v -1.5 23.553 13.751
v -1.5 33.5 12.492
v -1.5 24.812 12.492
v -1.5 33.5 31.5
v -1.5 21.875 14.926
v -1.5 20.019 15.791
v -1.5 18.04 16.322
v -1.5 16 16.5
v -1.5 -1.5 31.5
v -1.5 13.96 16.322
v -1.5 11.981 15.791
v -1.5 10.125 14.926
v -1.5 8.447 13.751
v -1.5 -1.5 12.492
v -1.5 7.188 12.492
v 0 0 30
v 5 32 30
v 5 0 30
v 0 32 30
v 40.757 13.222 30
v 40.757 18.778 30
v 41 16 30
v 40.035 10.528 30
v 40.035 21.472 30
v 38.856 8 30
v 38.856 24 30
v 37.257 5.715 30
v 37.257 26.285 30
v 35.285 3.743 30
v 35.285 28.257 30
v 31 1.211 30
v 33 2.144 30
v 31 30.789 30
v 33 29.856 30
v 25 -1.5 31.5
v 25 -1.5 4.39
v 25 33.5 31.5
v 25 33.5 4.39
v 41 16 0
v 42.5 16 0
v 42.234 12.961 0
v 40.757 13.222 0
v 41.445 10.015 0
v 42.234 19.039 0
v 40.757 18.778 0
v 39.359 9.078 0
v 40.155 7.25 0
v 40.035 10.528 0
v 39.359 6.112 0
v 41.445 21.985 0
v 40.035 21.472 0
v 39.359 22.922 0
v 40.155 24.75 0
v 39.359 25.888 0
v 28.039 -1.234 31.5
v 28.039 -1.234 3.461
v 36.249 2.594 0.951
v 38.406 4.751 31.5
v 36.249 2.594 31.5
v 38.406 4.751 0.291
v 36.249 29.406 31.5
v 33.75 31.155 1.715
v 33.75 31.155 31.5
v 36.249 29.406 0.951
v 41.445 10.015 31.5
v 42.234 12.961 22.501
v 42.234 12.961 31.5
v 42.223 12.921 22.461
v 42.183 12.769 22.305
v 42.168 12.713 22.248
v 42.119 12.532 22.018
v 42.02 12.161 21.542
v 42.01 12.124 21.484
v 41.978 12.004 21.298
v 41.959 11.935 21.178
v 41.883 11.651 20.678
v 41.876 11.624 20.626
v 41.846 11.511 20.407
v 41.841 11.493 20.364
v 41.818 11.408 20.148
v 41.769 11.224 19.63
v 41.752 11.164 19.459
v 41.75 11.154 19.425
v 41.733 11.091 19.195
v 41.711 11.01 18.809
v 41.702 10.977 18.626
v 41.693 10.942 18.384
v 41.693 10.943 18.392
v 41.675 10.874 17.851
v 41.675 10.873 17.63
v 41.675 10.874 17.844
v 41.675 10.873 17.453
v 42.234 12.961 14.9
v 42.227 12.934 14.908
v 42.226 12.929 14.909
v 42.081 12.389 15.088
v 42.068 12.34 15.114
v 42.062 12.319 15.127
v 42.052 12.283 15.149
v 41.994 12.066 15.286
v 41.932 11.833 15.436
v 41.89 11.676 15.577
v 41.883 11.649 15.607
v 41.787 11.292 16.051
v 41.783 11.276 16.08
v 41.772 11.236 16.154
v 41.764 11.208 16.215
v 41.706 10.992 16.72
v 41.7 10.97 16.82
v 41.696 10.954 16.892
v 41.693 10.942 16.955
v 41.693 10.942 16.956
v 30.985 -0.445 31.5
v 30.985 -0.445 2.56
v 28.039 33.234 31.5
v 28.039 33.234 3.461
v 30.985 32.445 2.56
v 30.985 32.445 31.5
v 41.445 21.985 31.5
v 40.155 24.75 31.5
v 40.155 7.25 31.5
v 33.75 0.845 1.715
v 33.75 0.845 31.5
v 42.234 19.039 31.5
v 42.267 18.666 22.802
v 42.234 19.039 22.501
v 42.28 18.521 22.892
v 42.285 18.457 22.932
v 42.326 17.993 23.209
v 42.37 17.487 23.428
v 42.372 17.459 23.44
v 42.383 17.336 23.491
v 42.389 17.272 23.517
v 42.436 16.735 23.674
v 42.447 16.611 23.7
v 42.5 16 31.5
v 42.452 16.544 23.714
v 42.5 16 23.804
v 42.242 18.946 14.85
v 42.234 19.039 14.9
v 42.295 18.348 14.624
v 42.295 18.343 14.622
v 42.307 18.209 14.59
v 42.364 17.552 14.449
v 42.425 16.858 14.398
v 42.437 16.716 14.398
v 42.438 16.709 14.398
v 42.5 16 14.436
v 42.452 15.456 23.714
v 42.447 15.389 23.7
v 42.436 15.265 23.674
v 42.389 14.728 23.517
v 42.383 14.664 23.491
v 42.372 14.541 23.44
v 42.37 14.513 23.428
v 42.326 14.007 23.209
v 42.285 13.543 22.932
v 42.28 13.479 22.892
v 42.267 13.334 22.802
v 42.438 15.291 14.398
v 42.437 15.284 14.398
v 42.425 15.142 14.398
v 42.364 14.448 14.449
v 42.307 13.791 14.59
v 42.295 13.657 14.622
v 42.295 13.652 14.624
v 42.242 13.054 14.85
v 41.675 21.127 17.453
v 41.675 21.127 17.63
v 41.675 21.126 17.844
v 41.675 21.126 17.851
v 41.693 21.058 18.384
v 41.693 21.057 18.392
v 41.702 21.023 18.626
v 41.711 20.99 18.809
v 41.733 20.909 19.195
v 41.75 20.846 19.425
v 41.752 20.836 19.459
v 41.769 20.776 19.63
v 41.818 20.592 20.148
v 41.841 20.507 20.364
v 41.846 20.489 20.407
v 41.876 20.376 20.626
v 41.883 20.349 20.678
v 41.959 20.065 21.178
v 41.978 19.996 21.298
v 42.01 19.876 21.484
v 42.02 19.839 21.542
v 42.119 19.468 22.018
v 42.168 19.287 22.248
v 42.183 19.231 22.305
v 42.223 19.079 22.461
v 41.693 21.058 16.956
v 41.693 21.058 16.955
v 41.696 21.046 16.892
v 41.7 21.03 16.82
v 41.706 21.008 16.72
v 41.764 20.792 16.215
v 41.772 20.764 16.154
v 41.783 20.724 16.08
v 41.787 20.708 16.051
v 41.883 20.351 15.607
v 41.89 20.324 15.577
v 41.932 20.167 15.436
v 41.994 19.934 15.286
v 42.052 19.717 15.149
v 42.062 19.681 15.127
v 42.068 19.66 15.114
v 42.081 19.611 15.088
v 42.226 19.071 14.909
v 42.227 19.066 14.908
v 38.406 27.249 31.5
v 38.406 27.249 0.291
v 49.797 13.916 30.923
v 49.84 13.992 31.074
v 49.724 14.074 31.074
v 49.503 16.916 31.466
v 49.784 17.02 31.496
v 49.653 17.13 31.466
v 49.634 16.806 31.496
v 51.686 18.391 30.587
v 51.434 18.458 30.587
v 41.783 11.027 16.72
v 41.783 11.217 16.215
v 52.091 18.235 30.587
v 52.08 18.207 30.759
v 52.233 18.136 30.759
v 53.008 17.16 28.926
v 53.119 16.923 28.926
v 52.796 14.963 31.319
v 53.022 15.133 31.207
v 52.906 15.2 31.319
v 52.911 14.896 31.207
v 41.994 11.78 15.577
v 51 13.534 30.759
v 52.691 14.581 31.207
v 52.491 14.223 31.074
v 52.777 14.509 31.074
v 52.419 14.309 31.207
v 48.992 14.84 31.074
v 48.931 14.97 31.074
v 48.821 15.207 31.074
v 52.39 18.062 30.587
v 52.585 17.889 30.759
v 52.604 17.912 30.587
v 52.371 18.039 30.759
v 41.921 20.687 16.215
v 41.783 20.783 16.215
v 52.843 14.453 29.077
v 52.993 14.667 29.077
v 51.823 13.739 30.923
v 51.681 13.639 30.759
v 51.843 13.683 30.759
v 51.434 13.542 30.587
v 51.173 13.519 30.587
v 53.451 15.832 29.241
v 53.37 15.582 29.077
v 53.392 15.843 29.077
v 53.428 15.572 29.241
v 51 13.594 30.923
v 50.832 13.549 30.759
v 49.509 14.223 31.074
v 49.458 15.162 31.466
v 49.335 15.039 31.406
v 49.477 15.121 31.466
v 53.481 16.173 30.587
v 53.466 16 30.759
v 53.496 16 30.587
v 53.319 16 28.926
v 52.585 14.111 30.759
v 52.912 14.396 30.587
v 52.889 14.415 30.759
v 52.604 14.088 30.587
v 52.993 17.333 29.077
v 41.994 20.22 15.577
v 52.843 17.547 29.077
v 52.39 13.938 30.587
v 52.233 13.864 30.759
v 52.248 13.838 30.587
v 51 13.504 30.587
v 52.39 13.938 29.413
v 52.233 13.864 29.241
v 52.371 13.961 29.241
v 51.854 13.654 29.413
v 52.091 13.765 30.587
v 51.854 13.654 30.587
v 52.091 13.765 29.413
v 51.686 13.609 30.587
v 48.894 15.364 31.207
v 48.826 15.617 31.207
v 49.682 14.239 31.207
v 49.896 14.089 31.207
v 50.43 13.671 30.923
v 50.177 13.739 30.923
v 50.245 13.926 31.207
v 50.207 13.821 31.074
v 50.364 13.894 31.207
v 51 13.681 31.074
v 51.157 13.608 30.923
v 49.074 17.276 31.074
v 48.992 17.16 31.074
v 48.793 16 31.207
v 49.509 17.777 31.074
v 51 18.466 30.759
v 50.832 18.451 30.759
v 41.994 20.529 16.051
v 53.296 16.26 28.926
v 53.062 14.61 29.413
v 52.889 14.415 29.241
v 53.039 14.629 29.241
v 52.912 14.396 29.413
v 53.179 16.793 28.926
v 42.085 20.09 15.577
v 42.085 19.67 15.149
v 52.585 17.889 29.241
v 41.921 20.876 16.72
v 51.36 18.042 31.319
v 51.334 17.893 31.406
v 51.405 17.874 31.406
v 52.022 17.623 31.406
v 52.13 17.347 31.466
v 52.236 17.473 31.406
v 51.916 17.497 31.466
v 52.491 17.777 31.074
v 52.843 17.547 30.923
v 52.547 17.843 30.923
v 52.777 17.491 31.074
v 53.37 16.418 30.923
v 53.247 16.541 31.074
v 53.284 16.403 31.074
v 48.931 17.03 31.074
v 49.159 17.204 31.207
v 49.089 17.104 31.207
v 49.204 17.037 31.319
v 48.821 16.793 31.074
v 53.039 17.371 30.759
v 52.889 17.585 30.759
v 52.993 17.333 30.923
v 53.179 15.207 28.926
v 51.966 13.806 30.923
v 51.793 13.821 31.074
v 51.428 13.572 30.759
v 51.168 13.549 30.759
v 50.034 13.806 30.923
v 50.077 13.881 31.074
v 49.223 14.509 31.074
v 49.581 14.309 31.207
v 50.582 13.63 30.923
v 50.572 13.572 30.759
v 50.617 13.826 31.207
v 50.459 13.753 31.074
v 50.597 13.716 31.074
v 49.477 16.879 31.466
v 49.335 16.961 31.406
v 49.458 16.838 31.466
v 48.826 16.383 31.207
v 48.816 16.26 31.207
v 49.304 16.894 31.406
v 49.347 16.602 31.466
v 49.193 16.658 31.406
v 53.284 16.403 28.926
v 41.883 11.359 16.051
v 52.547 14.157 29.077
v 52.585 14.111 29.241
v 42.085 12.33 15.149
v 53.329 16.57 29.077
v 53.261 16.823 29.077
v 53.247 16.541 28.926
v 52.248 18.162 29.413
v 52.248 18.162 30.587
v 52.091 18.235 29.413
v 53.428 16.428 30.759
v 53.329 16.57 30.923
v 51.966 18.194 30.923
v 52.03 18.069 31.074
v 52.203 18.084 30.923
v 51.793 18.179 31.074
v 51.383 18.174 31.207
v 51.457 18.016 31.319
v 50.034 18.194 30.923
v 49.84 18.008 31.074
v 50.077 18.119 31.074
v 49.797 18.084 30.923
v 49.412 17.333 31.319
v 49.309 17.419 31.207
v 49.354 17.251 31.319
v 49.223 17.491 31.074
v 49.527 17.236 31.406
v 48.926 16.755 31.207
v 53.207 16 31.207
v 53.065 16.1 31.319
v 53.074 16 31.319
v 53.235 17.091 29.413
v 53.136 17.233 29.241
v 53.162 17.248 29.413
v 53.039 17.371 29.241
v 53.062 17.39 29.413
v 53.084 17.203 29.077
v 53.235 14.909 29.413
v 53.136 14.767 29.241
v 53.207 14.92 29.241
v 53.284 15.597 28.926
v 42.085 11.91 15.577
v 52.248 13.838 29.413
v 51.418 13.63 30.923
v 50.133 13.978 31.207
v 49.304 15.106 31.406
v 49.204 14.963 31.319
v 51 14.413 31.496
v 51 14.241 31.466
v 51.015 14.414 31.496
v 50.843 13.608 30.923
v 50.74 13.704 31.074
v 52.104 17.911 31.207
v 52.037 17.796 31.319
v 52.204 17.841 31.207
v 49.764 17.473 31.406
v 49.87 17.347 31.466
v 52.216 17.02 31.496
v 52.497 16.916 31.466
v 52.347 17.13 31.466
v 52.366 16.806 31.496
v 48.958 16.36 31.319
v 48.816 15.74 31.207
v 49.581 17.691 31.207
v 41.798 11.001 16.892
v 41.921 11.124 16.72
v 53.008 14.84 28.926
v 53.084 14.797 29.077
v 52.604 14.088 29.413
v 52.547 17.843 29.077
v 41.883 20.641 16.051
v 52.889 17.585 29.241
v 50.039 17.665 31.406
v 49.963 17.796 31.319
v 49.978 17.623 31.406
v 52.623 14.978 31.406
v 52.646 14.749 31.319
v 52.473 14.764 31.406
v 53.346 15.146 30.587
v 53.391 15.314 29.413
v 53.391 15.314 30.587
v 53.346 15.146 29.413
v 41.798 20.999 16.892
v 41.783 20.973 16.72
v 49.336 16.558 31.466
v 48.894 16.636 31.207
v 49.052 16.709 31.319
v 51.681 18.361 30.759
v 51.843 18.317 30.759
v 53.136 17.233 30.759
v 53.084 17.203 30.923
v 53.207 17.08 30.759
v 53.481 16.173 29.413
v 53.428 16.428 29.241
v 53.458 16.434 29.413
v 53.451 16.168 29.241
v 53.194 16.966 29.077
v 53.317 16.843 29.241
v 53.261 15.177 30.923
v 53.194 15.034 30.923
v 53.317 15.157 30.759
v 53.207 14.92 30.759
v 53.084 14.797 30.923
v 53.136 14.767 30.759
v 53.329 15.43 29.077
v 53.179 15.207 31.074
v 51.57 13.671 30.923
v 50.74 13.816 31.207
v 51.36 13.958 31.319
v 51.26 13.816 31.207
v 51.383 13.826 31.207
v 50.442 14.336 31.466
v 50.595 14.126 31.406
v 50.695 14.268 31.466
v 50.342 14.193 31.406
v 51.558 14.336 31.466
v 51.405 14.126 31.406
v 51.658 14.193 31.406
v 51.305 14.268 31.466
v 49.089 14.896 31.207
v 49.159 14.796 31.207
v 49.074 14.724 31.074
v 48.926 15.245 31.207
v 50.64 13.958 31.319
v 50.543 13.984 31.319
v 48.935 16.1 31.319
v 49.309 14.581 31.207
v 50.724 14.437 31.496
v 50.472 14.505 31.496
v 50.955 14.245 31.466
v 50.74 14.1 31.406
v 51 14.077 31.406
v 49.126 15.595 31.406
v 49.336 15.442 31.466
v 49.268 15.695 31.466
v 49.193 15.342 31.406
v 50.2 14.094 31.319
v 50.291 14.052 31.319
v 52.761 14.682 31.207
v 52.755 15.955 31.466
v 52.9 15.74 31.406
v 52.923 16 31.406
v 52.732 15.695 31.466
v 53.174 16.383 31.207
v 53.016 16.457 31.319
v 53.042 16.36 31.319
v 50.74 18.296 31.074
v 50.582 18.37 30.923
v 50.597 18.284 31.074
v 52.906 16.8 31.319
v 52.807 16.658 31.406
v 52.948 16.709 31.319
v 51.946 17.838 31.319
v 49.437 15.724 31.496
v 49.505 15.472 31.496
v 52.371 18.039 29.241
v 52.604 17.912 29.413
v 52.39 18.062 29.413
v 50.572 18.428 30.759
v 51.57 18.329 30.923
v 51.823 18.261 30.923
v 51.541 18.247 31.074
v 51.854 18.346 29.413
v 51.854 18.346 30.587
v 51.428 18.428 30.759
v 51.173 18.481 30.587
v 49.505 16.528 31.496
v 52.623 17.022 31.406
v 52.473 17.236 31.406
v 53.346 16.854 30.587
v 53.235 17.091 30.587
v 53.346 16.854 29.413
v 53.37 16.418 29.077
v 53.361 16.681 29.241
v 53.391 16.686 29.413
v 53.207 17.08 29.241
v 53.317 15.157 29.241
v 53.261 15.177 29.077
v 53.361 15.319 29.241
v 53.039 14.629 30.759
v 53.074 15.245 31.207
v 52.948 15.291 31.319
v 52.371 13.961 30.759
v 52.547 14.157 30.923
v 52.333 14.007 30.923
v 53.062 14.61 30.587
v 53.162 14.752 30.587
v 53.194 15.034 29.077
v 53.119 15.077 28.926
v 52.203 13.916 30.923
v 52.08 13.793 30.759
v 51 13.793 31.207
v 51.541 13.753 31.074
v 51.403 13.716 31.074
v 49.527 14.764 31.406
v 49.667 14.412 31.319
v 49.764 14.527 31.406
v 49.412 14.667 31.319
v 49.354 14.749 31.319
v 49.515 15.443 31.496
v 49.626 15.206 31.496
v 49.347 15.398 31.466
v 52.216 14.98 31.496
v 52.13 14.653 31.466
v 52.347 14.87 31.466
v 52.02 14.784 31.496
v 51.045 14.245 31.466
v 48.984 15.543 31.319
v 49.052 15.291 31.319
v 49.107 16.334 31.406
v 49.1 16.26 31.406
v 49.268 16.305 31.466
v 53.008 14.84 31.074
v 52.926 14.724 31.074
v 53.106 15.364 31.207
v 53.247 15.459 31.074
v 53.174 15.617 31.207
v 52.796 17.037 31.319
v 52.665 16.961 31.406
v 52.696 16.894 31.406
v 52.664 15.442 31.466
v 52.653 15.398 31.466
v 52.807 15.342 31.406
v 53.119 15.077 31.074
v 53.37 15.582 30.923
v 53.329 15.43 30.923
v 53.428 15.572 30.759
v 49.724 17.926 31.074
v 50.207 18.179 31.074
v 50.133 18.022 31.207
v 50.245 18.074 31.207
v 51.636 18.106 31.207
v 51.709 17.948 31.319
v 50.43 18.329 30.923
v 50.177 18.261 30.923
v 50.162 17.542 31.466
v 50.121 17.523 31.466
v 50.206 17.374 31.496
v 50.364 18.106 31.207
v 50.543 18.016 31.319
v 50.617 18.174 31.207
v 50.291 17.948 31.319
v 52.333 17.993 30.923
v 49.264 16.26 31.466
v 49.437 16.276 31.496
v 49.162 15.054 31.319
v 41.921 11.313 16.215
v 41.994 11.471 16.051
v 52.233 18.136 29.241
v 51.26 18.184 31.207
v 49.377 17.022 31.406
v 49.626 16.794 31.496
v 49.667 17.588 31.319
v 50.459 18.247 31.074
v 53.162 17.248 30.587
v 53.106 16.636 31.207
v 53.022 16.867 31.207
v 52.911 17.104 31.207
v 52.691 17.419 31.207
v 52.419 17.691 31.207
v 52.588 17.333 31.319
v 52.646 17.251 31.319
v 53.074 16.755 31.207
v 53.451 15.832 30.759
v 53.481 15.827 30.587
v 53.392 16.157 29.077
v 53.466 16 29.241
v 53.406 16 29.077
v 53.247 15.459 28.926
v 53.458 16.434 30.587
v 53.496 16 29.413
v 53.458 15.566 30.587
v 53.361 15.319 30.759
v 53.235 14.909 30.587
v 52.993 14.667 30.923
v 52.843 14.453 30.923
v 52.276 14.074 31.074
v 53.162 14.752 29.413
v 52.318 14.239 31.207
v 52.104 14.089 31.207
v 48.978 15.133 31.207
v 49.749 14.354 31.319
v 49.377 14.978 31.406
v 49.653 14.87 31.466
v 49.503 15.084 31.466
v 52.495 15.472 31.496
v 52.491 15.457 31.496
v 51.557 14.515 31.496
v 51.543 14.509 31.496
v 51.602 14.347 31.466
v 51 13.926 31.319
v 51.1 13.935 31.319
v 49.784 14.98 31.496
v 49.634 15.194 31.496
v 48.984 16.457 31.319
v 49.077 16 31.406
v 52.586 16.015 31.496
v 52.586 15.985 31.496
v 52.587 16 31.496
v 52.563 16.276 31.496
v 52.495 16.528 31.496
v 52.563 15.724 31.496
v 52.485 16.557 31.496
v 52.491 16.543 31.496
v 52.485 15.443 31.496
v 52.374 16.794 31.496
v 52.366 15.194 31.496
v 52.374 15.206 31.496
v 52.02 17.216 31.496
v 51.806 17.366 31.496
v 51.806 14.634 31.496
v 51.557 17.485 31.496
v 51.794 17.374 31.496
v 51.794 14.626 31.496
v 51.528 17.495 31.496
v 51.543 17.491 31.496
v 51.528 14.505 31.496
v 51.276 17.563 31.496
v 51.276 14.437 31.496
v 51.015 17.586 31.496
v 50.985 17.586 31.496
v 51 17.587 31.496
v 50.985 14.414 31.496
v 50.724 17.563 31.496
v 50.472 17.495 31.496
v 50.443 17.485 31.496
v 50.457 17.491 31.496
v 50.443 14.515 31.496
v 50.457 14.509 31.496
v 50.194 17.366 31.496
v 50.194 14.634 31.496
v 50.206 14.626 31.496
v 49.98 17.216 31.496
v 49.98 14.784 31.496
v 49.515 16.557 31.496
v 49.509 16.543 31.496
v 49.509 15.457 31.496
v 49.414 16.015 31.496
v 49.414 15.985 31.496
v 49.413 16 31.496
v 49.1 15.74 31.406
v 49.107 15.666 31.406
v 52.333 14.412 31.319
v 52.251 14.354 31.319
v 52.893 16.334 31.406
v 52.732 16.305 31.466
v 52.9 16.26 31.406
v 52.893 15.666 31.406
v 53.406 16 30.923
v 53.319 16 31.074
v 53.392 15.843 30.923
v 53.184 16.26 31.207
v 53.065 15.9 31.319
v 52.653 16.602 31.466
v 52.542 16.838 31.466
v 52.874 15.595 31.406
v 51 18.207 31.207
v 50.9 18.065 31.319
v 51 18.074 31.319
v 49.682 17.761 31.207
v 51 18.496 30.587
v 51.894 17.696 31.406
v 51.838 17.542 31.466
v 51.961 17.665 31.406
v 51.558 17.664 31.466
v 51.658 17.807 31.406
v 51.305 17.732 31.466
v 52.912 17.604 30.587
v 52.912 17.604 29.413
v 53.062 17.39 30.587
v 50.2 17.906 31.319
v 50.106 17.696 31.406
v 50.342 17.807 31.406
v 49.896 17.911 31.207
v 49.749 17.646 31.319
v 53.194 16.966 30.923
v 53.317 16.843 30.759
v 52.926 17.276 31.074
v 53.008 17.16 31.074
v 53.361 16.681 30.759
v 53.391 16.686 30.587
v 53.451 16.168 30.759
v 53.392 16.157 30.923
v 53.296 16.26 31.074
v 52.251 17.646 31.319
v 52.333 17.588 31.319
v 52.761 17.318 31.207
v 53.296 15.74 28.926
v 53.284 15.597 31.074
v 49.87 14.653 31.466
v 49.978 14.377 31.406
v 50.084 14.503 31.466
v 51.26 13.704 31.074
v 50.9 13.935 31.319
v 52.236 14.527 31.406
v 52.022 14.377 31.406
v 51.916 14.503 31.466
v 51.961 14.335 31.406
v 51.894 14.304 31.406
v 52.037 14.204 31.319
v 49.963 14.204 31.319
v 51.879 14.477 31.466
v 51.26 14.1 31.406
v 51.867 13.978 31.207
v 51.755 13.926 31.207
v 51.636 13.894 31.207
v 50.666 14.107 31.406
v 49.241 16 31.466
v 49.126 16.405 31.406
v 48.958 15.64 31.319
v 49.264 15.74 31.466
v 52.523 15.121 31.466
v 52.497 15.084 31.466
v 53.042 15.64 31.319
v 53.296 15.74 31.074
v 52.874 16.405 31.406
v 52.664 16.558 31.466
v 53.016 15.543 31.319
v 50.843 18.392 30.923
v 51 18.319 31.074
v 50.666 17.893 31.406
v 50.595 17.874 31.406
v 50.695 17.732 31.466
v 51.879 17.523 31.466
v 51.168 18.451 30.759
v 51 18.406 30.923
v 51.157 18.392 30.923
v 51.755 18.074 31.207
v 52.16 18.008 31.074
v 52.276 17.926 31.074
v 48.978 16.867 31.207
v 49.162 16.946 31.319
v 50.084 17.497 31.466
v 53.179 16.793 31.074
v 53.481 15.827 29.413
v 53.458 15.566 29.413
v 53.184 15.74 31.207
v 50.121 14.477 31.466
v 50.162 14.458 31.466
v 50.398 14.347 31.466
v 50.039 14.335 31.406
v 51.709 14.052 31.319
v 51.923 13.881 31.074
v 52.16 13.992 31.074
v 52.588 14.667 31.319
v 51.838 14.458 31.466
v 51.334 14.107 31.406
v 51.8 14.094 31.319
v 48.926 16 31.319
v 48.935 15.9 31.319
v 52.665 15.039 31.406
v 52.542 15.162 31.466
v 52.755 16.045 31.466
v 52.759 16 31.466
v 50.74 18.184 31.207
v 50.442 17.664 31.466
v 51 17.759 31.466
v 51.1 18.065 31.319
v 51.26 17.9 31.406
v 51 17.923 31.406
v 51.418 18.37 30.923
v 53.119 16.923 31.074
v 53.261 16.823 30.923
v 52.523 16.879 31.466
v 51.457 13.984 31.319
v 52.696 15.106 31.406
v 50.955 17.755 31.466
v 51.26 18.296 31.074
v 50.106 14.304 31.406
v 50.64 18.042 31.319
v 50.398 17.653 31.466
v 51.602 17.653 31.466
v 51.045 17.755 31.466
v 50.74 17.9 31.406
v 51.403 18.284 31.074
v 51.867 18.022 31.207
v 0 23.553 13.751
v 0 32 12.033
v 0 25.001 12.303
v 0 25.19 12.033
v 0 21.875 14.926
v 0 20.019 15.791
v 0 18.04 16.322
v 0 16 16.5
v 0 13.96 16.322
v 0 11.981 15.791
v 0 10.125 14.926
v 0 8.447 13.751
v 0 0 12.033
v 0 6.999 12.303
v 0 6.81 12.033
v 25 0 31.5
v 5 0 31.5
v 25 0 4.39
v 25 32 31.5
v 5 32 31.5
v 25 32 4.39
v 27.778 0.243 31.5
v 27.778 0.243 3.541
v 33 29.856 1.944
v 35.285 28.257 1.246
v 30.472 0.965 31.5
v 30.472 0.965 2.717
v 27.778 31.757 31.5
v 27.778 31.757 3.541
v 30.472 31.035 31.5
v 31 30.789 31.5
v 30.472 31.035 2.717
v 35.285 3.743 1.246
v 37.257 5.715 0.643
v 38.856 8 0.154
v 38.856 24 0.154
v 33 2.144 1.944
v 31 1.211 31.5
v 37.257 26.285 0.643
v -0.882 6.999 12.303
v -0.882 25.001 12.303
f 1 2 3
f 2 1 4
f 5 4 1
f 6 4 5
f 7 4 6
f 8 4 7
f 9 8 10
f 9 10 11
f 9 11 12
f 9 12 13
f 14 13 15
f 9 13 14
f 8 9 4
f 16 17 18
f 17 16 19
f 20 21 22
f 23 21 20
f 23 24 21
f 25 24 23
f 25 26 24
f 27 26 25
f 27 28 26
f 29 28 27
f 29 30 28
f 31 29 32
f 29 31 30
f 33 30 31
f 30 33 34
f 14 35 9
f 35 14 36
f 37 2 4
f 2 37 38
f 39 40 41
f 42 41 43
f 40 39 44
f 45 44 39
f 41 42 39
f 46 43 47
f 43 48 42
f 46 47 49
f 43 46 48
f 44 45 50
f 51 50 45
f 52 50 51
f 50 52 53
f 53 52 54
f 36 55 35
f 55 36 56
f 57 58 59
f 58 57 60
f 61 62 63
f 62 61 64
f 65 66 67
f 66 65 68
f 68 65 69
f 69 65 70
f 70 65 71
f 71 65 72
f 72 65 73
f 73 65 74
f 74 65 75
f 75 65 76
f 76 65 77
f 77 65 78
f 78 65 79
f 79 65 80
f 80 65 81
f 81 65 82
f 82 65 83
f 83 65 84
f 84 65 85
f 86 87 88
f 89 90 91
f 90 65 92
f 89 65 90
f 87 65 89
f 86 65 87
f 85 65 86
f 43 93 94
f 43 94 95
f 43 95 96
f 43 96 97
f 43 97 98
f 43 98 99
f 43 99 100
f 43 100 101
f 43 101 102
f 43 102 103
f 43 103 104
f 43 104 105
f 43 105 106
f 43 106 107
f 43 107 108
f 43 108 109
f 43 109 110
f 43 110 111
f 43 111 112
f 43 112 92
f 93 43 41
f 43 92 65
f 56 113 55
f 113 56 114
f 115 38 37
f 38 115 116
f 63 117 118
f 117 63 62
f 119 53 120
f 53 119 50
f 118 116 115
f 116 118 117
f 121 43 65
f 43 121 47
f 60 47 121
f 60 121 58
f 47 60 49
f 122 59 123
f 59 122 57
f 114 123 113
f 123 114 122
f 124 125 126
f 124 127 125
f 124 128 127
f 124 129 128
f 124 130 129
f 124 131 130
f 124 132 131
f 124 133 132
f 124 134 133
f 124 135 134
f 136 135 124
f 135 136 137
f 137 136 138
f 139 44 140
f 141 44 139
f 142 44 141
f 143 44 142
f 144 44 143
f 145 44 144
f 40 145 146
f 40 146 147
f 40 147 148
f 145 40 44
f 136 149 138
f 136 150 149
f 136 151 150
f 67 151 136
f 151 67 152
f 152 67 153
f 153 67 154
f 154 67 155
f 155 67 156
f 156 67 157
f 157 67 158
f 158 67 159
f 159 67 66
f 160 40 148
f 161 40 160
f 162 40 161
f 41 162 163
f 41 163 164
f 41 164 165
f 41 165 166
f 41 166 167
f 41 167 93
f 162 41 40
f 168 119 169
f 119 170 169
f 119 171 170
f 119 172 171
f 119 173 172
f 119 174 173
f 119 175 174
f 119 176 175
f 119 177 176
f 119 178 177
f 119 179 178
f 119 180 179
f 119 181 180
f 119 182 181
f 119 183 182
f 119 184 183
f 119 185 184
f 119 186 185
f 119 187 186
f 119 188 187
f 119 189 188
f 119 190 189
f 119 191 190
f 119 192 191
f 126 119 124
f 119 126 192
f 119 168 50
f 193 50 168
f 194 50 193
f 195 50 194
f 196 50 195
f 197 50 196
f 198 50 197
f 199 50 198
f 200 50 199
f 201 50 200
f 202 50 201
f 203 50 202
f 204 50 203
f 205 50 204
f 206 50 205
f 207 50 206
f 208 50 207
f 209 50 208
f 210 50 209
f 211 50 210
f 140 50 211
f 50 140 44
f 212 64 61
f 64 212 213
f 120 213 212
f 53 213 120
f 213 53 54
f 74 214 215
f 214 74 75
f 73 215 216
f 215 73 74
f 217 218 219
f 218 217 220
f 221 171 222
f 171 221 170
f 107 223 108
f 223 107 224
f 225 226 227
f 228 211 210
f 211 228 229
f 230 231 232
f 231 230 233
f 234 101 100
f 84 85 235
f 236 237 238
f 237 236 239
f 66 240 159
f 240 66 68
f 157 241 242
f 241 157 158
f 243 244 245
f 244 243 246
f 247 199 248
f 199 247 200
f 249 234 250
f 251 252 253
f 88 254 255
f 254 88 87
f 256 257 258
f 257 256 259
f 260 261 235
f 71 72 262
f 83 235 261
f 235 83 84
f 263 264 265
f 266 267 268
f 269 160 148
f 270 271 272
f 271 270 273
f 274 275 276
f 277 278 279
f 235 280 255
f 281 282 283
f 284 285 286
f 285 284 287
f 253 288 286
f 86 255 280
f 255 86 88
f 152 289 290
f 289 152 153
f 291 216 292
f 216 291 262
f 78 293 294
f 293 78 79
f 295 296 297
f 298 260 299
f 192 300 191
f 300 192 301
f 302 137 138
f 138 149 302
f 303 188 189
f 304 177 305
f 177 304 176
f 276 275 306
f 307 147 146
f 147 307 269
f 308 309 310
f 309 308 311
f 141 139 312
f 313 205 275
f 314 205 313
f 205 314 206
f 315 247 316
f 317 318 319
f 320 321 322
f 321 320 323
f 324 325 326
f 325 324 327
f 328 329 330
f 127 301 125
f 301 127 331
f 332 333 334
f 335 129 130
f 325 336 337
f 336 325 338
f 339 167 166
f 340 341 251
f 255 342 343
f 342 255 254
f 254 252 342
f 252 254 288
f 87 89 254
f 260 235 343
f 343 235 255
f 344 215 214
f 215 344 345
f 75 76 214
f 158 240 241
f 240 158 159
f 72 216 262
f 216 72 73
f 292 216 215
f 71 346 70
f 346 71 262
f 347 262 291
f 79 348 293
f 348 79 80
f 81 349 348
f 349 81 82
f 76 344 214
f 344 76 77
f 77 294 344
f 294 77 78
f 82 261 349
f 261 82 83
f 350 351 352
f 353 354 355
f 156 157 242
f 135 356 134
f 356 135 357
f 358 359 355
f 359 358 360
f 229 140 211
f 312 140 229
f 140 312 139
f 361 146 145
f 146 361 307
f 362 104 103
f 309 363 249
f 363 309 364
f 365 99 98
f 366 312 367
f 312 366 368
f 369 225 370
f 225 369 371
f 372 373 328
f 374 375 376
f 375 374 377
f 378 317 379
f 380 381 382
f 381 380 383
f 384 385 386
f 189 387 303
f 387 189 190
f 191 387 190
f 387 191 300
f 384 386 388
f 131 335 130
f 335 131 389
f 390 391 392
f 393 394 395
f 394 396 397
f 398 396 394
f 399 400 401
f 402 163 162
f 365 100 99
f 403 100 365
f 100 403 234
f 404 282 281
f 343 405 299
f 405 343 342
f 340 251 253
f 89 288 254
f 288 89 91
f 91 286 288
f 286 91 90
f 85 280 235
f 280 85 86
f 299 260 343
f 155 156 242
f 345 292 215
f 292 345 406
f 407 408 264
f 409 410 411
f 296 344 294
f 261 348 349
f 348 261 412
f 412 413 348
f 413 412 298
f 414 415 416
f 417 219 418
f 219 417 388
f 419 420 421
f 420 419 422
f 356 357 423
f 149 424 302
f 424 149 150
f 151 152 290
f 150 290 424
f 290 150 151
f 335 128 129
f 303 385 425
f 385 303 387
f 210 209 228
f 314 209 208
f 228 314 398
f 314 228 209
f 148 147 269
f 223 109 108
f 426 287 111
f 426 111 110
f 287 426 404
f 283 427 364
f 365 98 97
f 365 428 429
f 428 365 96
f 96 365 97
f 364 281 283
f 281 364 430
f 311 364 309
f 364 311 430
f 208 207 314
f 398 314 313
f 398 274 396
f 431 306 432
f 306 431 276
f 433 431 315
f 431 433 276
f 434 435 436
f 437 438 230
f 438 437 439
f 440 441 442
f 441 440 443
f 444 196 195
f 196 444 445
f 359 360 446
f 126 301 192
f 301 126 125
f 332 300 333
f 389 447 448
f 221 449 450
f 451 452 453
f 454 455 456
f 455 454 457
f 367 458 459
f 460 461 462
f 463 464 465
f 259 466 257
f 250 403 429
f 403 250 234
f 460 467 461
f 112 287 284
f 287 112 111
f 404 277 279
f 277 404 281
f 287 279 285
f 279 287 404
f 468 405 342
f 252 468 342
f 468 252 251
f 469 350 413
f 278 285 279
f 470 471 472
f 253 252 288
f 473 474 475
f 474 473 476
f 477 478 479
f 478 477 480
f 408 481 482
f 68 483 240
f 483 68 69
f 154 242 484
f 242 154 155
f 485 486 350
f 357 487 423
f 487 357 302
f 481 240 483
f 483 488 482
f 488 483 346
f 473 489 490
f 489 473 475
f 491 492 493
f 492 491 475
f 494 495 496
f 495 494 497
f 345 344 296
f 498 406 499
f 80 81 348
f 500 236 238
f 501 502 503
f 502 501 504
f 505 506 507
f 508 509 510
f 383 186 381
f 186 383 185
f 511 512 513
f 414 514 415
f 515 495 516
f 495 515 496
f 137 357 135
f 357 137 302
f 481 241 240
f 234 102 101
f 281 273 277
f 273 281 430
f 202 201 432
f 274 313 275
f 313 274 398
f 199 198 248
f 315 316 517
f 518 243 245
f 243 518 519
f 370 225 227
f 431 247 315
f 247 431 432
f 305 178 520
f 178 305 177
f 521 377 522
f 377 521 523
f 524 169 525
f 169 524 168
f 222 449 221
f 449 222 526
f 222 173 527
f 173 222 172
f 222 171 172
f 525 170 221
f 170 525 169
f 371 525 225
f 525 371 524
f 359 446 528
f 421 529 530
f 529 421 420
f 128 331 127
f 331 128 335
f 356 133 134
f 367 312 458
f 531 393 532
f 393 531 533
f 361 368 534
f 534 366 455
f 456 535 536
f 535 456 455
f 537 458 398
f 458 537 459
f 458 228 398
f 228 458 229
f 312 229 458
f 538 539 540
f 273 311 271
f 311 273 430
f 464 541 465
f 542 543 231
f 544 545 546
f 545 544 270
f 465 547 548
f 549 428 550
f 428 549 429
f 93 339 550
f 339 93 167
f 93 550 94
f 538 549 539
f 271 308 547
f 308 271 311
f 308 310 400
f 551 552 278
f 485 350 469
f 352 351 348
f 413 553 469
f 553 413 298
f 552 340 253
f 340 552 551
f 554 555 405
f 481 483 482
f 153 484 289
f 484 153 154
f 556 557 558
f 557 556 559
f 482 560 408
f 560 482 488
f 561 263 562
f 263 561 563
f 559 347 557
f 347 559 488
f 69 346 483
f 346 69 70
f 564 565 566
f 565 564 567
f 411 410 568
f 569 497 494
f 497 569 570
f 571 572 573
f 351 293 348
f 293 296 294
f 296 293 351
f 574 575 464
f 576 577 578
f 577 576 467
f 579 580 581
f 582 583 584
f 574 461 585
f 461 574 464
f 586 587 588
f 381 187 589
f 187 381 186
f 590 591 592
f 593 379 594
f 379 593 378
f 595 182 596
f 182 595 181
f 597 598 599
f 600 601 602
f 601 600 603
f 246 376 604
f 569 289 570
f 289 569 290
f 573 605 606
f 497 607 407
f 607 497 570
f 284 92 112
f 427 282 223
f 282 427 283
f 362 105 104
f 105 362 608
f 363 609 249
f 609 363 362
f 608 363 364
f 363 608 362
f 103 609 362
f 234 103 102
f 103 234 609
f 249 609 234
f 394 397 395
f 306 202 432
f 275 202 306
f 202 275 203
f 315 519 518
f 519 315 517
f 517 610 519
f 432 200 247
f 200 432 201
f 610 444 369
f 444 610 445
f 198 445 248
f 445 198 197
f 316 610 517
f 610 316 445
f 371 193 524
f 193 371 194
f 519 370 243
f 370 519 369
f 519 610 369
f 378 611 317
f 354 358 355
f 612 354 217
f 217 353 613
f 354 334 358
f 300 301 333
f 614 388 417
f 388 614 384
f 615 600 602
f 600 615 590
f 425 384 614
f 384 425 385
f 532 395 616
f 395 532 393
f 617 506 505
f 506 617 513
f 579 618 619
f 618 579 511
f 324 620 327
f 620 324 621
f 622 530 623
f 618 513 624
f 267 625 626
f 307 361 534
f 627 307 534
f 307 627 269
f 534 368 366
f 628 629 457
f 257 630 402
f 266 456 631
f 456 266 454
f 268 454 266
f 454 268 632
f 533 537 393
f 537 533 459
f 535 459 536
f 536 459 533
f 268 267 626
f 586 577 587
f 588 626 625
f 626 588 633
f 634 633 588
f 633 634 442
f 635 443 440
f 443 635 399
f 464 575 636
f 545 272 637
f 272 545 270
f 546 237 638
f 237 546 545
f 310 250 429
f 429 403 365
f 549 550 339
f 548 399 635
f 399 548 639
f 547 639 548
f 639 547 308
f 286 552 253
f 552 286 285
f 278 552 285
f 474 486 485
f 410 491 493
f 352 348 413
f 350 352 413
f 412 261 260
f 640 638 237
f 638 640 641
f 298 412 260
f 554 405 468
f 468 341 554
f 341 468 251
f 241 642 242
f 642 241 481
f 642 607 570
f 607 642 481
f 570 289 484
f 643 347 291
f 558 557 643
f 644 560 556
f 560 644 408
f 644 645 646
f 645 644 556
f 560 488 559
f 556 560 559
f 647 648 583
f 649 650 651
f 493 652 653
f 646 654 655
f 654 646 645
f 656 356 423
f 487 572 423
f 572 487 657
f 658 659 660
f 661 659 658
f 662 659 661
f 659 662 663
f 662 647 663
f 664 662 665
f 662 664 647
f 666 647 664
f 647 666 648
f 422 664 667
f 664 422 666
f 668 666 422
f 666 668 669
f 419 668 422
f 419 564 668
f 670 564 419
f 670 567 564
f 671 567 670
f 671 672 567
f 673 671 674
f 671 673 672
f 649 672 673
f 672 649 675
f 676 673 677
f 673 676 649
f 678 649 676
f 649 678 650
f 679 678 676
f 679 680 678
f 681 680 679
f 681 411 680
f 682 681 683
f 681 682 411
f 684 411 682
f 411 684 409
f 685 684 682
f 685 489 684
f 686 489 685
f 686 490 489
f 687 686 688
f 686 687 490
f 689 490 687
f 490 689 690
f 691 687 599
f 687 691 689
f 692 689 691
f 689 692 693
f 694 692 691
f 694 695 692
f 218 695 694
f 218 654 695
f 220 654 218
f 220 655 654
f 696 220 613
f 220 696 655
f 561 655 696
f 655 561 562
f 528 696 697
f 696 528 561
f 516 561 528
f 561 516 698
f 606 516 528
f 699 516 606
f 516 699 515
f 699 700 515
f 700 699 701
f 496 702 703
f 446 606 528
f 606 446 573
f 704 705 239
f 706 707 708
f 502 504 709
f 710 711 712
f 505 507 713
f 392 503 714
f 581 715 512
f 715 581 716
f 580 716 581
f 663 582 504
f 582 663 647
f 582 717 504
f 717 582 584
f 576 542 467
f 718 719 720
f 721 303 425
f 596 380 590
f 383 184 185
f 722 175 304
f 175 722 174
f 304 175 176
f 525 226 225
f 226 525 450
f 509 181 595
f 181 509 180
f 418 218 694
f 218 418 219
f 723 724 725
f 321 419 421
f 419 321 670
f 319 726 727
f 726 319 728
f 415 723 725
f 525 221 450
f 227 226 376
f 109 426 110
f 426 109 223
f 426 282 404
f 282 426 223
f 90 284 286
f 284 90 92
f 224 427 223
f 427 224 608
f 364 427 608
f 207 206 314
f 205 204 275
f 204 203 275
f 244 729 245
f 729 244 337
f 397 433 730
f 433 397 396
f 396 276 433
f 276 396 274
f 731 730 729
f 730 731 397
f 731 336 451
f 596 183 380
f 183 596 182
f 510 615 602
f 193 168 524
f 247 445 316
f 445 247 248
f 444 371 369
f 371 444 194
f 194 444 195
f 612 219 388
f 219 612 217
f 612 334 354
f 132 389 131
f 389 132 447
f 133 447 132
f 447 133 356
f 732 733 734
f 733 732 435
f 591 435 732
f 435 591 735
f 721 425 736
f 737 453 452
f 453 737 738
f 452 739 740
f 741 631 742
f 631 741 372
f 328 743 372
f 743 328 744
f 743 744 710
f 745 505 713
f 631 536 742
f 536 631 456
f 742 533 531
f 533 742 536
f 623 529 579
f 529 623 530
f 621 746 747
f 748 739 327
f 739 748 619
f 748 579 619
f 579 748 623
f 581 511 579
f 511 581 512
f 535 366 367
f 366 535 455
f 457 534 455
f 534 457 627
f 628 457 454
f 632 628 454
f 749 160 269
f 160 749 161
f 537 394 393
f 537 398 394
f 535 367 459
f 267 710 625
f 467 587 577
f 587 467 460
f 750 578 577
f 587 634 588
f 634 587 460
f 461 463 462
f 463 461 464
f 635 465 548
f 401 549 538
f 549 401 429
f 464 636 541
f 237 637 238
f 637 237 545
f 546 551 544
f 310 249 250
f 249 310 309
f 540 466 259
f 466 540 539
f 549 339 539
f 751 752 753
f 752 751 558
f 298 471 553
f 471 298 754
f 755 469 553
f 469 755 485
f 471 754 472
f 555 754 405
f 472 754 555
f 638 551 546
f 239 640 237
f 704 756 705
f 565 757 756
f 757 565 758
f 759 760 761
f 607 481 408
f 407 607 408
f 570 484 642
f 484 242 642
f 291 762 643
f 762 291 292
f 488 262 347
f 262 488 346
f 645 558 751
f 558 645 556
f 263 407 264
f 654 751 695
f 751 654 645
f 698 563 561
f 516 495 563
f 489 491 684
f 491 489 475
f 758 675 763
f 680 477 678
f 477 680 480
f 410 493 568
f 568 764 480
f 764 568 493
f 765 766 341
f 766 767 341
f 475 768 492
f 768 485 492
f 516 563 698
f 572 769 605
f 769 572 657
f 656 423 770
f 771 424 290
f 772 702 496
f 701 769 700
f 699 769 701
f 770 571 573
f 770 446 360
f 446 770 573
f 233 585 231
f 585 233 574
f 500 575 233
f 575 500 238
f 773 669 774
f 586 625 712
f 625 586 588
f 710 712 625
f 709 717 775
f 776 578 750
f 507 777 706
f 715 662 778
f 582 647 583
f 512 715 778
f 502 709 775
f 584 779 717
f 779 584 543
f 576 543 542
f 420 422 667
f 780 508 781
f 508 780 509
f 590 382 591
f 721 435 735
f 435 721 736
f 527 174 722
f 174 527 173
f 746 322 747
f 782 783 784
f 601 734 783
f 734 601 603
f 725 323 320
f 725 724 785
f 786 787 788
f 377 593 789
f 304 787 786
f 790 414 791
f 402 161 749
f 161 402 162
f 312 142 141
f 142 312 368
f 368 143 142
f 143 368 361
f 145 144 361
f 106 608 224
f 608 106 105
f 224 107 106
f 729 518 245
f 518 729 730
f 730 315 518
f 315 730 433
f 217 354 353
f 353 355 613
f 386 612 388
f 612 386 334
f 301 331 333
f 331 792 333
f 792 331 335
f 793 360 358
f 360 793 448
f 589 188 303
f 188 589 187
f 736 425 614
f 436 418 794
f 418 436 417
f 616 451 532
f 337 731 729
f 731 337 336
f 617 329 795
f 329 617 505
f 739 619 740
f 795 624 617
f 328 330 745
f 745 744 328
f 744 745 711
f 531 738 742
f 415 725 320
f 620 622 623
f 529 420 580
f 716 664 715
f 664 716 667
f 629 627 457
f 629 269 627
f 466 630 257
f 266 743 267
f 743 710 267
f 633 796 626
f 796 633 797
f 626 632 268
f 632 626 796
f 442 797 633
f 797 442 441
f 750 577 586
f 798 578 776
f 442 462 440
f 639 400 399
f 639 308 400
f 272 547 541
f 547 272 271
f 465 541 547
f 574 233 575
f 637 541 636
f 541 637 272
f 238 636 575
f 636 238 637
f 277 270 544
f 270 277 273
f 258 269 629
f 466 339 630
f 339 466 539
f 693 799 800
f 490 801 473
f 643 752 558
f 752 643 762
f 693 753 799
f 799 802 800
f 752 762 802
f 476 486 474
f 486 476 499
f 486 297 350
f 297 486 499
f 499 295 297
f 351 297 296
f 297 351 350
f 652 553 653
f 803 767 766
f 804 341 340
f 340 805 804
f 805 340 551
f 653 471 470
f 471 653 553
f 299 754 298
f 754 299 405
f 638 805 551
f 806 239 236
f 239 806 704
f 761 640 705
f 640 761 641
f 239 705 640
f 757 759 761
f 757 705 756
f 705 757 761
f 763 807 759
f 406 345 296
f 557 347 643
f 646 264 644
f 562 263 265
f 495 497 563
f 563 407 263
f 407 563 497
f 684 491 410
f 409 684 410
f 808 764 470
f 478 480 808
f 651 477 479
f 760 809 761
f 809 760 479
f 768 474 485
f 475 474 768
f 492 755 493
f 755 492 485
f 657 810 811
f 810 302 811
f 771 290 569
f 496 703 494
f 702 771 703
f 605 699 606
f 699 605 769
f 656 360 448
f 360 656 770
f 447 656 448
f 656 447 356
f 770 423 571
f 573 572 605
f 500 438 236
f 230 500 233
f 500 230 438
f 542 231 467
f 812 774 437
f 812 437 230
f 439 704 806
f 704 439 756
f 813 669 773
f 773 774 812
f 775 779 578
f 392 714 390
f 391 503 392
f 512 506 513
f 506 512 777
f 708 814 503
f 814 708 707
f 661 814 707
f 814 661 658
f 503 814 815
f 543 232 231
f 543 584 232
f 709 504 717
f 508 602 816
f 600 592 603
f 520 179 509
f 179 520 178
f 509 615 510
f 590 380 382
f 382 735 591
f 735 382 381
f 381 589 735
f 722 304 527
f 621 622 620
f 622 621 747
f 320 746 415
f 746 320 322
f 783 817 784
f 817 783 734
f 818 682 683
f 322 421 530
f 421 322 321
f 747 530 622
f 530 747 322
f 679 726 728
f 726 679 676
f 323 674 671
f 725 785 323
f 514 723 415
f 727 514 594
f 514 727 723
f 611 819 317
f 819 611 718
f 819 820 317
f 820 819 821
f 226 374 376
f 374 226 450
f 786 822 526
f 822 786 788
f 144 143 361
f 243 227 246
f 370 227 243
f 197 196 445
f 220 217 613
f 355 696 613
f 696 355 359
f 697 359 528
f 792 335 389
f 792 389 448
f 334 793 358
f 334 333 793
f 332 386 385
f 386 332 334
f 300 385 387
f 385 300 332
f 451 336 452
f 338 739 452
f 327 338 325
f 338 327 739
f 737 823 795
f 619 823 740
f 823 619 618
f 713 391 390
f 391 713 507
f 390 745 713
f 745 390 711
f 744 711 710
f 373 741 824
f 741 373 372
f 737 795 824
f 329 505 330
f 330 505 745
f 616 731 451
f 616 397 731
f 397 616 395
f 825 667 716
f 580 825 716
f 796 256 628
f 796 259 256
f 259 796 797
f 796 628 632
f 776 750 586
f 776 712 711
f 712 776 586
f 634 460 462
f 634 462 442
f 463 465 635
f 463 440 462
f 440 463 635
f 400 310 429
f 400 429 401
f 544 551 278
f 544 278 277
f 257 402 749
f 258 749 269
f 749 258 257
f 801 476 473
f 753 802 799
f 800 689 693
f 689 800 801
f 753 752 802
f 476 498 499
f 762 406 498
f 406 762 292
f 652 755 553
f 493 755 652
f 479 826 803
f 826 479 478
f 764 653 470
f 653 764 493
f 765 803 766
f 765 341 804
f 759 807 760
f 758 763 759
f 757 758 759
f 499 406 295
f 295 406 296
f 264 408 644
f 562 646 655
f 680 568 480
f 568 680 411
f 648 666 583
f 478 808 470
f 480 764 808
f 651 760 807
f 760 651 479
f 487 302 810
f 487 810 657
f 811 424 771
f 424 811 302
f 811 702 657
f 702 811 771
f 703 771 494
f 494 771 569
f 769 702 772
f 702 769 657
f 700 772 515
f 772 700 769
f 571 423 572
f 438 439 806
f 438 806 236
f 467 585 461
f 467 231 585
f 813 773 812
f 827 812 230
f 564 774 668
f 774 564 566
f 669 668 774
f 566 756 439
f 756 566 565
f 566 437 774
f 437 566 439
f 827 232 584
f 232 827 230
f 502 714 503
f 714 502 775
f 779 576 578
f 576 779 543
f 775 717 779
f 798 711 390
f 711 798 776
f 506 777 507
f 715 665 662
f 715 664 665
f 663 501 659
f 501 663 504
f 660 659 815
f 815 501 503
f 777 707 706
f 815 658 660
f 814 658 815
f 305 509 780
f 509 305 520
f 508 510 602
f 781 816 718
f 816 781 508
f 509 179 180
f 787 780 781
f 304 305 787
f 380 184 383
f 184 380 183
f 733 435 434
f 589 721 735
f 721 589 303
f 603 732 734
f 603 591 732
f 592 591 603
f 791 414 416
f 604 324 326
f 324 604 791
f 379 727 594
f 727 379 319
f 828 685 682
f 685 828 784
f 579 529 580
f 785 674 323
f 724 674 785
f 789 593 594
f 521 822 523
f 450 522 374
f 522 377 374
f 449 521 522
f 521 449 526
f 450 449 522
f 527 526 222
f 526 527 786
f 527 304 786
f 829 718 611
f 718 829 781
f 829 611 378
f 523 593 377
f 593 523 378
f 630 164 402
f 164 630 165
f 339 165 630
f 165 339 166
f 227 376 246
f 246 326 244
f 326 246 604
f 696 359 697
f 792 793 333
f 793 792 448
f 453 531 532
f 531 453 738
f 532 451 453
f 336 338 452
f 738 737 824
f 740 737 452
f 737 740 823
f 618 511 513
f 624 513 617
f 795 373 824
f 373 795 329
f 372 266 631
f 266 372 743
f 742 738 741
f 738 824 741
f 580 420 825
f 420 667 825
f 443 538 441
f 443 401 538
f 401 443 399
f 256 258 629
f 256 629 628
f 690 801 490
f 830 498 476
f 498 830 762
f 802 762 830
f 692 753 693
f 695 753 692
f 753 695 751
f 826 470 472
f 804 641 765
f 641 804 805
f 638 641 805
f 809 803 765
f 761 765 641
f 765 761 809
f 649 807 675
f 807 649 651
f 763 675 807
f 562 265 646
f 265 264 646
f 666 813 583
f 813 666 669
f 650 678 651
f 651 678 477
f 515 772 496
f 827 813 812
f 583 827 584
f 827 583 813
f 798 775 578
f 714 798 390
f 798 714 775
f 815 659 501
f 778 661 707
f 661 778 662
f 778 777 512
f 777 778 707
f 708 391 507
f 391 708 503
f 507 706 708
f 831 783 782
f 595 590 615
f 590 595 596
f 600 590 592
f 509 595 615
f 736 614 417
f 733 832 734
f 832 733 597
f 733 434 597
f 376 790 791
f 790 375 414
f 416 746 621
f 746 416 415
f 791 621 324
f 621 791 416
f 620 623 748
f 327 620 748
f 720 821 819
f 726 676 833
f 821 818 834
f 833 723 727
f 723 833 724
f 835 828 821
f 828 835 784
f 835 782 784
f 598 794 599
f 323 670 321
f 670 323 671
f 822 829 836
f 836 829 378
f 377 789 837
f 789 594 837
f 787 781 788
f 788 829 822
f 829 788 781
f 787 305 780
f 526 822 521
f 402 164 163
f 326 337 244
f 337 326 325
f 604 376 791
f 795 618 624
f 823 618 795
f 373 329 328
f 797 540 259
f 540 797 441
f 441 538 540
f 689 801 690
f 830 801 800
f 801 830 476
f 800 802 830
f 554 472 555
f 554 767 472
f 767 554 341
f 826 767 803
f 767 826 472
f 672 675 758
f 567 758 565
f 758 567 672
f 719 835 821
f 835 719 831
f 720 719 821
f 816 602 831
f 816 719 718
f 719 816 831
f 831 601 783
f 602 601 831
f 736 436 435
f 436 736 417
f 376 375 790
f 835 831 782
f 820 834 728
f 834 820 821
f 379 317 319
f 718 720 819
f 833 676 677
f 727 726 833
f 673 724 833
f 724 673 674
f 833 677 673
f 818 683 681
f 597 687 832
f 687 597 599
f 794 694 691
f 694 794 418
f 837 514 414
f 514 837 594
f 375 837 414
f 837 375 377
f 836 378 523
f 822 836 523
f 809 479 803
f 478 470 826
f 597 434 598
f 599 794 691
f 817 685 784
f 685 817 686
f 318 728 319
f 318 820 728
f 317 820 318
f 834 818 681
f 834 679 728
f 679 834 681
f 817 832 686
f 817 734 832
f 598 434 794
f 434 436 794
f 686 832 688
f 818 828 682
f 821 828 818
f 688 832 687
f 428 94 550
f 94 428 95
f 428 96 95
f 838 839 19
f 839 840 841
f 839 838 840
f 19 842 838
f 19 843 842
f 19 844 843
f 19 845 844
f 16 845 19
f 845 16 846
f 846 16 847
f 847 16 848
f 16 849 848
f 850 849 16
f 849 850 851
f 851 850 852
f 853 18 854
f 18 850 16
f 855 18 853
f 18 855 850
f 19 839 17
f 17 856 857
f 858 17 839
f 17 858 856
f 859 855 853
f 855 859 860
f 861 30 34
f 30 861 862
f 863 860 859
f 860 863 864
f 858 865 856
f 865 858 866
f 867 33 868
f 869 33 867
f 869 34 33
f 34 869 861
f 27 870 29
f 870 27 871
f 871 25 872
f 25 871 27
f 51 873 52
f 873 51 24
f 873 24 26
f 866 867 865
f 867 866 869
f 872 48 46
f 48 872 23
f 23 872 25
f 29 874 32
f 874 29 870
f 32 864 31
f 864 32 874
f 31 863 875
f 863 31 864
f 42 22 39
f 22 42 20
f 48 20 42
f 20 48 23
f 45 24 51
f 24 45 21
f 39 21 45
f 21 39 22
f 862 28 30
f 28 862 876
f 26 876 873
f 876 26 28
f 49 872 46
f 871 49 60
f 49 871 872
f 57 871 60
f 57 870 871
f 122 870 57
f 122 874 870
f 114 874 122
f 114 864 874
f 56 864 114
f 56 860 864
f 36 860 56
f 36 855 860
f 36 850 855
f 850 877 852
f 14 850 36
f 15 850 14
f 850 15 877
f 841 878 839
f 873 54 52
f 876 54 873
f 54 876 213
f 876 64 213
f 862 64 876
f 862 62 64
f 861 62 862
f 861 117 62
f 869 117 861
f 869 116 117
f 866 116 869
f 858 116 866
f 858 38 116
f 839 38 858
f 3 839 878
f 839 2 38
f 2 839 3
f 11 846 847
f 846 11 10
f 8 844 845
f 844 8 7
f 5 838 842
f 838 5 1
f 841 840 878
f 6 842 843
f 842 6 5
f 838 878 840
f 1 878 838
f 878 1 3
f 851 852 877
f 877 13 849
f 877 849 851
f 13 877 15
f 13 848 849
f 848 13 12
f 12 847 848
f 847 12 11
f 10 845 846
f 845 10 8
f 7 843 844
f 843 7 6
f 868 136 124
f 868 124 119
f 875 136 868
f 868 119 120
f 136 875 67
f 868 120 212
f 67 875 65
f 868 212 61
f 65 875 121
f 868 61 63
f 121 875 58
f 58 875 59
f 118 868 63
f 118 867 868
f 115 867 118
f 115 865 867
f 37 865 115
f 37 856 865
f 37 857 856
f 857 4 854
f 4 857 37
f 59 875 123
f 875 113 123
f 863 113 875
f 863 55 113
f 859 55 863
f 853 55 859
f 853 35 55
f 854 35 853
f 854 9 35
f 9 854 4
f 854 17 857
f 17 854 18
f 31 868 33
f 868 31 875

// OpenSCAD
breite=41;
tiefe =32;
hoehe1 =14;
hoehe2 =30;
radiusStange=23.5/2;
$fn=36;

module koerper(wand) {
    hull() {
        translate([-wand, -wand, 0]) 
        cube([3, tiefe+2*wand, hoehe2]);
        
        translate([breite-tiefe/2, tiefe/2, 0]) 
        cylinder(r=tiefe/2+wand, h=hoehe2);
    }
}

module haken() {
    minkowski() {
        hull() {
            rotate([0,90,0])
            scale([1,1.4,1])
            cylinder(d=6, h=.3);
            
            translate([10,0,12])
            cylinder(d=3, h=1);
        }
        sphere(r = 1);
    }
}

module deckel() {
  difference() {
    intersection() {
        translate([-1.5,-1.5,0])
        cube([breite+10, tiefe+10, 1.5]);
        koerper(1.5);
    }
    
    intersection() {
        translate([5,0,0])
        cube([breite-15, tiefe, 1.5]);
        koerper(0);
    }
    
  }
}

difference() {
    hoehe2 =40;    
    hoehe1 =0;
    
    union() {
        koerper(1.5);
        
        translate([breite, tiefe/2, hoehe2-22.5]) 
        haken();
    }

    koerper(0);
    
    //Glattschnitt unten
    /*translate([-24, -6,-10])
    rotate([0,45,0])
    cube([breite+50, tiefe+50, 30]);*/
    translate([-24, -6,-12])
    rotate([0,17,0])
    cube([breite+50, tiefe+50, 30]);
    
    translate([-2, tiefe/2, -3*radiusStange+hoehe2-hoehe1]) 
    rotate([0,90,0])
    cylinder(r=radiusStange, h=10);
    
    
    
}

    translate([0,0,hoehe2])
    deckel();





/* Backup 1. Version
difference() {
    union() {
        koerper(1.5);
        
        translate([breite, tiefe/2, 3]) 
        haken();
    }
    

    koerper(0);
    
    //Glattschnitt unten
    translate([-2, -2,-5])
    cube([breite+4, tiefe+4, 5]);
    
    translate([-2, tiefe/2, -radiusStange+(hoehe2-hoehe1)]) 
    rotate([0,90,0])
    cylinder(r=radiusStange, h=10);
}*/
